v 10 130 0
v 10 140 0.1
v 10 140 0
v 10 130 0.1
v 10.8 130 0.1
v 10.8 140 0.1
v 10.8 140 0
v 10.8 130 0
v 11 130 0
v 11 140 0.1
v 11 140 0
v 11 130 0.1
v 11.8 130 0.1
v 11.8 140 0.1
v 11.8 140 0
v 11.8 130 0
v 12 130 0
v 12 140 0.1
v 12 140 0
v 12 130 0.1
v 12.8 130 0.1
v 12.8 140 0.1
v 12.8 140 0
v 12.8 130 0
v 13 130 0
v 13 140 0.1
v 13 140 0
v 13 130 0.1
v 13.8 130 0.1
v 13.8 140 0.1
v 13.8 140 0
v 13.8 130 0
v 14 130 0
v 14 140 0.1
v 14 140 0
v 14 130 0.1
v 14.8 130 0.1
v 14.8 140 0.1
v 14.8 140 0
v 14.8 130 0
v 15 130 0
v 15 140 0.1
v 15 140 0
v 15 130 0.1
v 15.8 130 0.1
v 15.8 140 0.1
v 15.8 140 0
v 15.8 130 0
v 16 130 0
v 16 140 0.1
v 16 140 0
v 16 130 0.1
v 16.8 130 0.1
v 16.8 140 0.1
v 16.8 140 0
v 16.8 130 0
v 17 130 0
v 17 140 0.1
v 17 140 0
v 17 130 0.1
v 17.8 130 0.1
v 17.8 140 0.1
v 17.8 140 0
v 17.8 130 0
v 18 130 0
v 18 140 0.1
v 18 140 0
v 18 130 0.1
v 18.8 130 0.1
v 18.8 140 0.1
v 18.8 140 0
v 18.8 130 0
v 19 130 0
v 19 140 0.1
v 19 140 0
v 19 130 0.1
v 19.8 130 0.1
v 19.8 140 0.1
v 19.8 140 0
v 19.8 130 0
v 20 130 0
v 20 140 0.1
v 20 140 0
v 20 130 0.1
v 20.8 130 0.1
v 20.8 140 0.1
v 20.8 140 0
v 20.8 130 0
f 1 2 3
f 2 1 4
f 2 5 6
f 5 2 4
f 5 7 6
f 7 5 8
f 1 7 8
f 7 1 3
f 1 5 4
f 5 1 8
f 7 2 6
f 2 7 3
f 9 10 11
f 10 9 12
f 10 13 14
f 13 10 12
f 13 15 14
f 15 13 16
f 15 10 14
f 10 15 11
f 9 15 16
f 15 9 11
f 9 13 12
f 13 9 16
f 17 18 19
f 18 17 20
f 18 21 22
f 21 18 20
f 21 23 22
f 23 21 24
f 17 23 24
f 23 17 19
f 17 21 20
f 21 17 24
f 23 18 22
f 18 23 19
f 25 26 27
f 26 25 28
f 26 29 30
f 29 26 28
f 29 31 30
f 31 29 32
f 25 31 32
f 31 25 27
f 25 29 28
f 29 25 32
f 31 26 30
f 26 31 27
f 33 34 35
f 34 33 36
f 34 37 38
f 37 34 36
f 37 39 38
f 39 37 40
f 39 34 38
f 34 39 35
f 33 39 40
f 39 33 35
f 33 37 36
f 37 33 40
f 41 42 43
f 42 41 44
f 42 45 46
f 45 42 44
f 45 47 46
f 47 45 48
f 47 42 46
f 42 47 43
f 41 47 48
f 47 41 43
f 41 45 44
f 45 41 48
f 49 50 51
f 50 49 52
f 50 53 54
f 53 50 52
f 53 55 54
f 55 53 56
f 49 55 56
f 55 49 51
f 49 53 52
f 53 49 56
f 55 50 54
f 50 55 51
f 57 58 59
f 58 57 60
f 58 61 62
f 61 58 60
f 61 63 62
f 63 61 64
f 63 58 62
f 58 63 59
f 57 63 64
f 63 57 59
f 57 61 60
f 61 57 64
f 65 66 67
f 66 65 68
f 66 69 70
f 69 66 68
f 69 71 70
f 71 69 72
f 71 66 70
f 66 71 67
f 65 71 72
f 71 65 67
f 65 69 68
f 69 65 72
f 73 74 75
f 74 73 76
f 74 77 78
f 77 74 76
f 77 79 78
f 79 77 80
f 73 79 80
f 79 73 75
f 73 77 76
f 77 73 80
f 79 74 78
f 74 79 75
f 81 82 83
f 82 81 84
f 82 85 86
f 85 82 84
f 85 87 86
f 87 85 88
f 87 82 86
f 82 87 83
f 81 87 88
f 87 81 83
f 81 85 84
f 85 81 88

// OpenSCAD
translate([10+0,10+120,0])
        for (i = [0 : 10]){
            translate([i,0,0])
                cube(size = [0.8,10,0.1]);
    }
